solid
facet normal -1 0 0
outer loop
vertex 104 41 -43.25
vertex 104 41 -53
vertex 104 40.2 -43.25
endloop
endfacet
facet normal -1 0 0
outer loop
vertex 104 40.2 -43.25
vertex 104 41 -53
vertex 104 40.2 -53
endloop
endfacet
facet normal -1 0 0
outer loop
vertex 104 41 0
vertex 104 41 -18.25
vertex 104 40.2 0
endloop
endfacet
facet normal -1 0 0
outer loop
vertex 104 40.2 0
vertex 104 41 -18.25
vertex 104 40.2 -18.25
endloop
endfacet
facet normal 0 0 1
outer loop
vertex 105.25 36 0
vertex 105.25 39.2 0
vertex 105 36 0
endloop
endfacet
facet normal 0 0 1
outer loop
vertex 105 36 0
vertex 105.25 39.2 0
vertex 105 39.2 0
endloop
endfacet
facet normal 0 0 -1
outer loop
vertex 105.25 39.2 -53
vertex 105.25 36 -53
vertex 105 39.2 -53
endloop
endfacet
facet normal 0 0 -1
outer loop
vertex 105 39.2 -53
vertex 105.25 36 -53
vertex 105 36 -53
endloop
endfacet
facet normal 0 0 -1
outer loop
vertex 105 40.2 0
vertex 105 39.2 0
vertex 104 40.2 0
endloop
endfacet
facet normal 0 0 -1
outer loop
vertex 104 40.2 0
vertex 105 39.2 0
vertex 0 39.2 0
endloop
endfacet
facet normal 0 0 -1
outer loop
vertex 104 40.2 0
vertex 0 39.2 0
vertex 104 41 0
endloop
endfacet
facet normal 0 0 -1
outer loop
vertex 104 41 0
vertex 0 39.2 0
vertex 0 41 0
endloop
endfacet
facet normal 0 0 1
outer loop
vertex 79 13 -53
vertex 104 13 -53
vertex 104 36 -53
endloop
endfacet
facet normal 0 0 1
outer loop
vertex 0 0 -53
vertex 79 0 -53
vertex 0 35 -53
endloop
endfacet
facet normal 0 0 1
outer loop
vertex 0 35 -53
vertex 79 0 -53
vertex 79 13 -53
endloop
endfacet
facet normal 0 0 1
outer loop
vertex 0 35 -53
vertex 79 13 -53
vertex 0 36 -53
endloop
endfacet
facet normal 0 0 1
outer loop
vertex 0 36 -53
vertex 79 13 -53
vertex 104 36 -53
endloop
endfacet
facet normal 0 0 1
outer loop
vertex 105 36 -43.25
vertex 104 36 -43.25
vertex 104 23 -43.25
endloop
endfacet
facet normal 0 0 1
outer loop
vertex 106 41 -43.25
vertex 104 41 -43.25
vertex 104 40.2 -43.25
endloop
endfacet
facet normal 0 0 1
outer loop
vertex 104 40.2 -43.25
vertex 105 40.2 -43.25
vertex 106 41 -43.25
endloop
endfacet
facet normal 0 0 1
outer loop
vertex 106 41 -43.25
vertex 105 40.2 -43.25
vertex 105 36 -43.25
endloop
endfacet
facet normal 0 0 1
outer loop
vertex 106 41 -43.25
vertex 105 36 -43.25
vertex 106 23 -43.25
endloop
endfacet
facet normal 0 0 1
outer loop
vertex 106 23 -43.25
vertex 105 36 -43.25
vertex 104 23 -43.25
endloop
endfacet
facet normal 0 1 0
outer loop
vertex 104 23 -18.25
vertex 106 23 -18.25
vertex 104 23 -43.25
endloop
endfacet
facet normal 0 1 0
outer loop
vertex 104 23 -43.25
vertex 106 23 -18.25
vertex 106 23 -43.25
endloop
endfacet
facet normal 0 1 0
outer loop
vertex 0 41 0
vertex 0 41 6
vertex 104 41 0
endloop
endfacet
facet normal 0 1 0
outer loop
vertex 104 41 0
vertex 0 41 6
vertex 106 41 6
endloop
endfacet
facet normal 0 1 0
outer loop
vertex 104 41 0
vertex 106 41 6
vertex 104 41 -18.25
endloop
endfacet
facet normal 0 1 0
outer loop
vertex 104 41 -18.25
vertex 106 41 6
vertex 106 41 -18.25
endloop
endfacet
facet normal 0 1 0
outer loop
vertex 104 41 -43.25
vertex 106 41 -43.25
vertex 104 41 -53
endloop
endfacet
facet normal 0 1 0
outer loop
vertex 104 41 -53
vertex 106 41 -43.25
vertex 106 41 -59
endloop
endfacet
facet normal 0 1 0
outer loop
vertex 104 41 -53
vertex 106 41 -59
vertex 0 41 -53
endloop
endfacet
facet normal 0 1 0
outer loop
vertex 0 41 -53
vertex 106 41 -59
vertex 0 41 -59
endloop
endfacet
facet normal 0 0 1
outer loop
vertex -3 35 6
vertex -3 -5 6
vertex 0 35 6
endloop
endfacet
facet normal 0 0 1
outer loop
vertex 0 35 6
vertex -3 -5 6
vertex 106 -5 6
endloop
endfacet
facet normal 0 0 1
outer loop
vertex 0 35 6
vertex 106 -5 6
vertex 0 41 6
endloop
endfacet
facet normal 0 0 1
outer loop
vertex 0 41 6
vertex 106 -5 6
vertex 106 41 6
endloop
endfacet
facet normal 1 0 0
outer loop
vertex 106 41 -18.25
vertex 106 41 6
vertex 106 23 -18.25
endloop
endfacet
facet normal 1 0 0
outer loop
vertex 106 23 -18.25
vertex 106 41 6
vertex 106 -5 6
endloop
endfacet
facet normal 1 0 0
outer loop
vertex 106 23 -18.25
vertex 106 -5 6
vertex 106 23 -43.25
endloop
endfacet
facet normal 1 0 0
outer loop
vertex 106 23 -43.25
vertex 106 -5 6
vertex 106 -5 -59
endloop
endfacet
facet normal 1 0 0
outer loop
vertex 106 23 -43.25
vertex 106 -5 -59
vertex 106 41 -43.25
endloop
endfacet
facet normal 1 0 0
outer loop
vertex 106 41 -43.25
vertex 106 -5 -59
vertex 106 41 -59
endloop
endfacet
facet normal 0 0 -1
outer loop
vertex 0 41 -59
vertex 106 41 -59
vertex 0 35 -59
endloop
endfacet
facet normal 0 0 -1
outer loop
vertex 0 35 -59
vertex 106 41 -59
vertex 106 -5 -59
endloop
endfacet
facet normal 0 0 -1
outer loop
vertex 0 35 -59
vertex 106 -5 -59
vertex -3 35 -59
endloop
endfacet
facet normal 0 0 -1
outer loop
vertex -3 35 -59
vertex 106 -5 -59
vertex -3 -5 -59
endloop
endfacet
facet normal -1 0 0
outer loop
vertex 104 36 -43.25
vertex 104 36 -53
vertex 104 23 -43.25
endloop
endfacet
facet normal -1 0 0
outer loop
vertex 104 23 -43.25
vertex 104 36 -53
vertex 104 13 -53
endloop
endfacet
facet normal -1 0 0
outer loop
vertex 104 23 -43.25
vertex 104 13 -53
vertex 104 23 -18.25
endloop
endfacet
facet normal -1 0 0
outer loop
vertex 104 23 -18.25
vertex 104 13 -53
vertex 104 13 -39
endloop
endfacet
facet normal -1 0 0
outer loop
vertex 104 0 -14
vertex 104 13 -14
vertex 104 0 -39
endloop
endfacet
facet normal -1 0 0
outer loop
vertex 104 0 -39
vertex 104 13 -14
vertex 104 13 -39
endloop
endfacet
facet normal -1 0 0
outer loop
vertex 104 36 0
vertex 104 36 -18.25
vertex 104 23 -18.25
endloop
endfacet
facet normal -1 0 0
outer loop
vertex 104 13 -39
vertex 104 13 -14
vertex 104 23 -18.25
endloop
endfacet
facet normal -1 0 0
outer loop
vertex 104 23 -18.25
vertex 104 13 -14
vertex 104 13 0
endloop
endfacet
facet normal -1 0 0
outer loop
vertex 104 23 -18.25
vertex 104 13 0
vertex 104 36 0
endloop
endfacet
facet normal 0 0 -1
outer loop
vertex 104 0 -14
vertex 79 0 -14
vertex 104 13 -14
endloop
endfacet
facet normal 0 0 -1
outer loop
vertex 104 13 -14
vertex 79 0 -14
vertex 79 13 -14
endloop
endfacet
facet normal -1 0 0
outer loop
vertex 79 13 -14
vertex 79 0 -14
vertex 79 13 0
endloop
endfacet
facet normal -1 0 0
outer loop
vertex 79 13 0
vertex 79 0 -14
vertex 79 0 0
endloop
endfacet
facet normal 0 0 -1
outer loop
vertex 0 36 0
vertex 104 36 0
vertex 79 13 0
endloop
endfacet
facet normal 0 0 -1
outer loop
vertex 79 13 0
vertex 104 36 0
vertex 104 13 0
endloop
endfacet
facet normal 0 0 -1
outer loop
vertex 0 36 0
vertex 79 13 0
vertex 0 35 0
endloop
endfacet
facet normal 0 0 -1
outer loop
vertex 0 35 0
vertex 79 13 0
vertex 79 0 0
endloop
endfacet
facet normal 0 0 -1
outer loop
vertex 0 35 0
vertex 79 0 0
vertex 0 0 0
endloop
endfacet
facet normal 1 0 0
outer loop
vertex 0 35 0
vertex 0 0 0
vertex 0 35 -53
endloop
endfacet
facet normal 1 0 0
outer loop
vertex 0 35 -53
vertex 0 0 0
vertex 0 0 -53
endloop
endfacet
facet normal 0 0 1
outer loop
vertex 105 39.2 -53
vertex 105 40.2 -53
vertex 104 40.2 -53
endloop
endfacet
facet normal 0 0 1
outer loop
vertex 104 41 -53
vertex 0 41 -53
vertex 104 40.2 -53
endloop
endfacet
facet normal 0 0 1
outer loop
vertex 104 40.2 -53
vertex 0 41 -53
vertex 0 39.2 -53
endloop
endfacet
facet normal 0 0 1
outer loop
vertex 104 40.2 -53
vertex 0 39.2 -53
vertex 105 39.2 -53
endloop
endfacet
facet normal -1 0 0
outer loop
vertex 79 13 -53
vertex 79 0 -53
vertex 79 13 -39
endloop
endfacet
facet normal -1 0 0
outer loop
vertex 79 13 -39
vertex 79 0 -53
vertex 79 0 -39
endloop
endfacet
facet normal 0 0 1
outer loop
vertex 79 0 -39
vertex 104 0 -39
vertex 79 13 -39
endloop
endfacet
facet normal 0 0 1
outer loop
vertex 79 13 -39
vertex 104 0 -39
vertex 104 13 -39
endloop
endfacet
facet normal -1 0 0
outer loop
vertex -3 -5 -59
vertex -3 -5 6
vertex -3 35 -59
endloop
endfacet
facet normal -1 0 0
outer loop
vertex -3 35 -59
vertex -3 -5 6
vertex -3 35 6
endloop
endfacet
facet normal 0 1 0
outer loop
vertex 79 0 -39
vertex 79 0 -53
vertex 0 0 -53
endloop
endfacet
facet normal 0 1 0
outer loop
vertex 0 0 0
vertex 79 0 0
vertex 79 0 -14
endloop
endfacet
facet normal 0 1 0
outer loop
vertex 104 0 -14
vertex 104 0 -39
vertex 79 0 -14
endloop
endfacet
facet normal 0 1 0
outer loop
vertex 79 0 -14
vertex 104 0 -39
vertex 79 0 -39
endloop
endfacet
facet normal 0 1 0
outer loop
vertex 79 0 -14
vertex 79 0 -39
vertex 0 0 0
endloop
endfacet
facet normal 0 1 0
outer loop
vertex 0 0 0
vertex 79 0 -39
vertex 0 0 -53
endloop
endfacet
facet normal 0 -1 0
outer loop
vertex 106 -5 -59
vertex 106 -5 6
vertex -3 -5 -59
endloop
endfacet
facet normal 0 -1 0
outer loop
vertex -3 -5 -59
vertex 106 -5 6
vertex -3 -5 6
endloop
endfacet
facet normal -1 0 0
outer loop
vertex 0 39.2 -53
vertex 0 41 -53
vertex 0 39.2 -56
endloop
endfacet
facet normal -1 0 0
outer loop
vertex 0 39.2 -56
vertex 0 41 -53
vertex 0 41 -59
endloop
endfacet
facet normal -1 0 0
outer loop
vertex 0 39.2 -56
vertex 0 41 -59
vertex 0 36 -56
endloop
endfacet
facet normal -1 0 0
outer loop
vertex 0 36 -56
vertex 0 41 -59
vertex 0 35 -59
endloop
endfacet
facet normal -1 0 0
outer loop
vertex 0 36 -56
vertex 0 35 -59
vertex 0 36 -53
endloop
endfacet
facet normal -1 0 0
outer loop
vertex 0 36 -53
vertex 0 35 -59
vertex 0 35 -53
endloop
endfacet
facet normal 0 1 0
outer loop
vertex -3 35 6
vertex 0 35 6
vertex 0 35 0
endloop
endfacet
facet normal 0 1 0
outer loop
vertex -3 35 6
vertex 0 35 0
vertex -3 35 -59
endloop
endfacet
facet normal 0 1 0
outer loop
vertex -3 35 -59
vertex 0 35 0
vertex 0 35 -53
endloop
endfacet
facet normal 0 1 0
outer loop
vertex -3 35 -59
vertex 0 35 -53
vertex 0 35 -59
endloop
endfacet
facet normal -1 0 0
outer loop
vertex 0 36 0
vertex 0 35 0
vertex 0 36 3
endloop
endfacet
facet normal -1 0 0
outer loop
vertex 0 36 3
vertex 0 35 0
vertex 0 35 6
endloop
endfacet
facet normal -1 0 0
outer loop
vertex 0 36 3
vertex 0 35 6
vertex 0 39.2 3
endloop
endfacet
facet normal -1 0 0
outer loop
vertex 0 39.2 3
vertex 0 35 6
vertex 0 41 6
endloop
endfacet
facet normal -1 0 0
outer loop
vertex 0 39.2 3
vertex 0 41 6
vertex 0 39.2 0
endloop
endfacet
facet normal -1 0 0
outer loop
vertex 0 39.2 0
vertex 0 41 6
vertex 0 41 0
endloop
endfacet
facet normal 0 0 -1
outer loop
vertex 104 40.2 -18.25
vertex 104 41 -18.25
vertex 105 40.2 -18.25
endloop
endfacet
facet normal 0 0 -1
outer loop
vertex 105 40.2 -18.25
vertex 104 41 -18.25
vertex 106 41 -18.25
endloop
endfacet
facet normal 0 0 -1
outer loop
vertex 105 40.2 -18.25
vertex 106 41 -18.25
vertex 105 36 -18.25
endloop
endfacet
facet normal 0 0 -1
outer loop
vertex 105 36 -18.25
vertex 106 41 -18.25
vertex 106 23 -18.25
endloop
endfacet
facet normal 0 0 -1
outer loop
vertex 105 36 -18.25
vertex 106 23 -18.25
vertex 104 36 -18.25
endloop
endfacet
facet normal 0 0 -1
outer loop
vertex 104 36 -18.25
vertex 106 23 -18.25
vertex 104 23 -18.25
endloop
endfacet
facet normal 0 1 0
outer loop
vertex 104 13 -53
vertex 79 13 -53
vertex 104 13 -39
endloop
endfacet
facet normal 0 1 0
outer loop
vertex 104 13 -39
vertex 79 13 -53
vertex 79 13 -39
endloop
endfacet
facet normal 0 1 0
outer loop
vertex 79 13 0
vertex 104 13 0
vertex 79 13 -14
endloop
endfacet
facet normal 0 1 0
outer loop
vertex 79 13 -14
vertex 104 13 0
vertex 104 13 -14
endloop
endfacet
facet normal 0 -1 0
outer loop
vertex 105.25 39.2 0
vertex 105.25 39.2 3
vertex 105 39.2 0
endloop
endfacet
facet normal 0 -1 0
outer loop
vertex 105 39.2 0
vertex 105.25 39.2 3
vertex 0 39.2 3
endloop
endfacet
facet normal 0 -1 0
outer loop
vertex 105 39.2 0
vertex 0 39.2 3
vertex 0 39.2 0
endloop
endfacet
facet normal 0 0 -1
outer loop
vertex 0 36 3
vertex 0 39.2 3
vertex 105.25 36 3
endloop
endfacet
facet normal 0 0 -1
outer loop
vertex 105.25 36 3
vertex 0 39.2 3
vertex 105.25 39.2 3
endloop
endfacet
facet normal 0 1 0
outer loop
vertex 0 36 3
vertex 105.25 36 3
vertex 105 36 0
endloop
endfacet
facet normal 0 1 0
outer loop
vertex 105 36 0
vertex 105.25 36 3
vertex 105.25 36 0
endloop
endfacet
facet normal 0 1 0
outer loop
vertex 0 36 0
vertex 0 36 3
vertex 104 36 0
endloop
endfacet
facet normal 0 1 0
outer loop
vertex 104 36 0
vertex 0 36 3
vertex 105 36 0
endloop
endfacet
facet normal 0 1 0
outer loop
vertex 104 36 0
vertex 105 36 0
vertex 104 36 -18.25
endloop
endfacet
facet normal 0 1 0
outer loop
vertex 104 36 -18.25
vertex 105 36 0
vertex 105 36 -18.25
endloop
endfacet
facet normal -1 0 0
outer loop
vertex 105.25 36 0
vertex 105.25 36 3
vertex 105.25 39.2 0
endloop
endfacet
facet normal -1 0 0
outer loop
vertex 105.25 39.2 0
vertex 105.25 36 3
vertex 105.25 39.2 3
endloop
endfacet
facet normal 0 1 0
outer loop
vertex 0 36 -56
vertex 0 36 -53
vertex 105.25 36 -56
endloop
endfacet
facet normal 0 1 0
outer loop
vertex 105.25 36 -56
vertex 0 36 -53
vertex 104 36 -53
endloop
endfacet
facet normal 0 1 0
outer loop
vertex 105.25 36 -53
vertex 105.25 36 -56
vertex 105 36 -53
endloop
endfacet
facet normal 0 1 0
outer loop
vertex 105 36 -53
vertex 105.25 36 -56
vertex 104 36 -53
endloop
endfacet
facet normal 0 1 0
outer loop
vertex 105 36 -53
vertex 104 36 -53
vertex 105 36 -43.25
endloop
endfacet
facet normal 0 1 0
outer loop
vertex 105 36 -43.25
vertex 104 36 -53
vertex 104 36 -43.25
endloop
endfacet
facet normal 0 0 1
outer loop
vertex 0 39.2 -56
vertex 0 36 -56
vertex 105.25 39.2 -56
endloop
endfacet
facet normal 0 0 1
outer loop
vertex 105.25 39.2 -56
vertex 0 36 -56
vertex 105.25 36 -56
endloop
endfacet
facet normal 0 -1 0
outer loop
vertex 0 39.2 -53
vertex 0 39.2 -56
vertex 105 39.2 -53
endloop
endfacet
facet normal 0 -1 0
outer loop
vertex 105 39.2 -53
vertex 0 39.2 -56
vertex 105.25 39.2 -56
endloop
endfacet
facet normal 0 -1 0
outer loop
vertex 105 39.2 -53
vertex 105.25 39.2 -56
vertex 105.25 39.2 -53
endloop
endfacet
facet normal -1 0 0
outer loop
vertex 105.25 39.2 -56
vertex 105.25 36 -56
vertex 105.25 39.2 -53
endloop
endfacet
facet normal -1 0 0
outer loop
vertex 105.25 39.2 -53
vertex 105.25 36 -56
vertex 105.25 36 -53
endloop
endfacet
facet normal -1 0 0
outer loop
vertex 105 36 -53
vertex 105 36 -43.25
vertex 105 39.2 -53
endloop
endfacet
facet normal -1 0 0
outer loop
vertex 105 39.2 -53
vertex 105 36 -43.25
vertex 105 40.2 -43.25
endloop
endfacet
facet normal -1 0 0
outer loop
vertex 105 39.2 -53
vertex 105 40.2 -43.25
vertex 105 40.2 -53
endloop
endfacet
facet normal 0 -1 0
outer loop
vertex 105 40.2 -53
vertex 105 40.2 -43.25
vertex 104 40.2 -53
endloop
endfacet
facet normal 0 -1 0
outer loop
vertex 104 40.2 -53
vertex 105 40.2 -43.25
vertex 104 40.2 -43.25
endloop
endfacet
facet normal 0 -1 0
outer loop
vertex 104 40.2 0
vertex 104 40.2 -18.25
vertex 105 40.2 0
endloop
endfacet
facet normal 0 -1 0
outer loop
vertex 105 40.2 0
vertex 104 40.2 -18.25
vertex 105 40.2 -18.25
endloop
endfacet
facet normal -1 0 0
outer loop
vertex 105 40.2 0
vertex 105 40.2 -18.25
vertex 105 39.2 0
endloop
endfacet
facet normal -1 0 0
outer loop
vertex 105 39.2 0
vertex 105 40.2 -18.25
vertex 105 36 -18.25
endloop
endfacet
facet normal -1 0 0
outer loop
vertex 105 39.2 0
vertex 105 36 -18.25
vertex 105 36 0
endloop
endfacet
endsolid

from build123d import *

# Parameters (mm, degrees)
SKETCH2_W           = 109
SKETCH2_H           = 65
SKETCH2_W_2         = 104
SKETCH2_H_2         = 53
SKETCH2_W_3         = 25
SKETCH2_H_3         = 14
BOSS_EXTRUDE1_DEPTH = 41
SKETCH3_W           = 109
SKETCH3_H           = 65
BOSS_EXTRUDE2_DEPTH = 5
SKETCH4_W           = 65
SKETCH4_H           = 6
CUT_EXTRUDE1_DEPTH  = 3
SKETCH5_W           = 25
SKETCH5_H           = 18
CUT_EXTRUDE2_DEPTH  = 10
SKETCH6_W           = 53
SKETCH6_H           = 28
CUT_EXTRUDE3_DEPTH  = 25
SKETCH7_W           = 3
SKETCH7_H           = 3.2
CUT_EXTRUDE4_DEPTH  = 105.25
SKETCH8_W           = 53
SKETCH8_H           = 4.2
CUT_EXTRUDE5_DEPTH  = 1


with BuildPart() as part:
    # Sketch2 → Boss-Extrude1 (new body)
    # profile 1 of 3: a face of its own
    with BuildSketch(Plane(origin=(0, 0, 0), x_dir=(1, 0, 0), z_dir=(0, 1, 0))):
        with Locations((51.5, 26.5)):
            Rectangle(SKETCH2_W, SKETCH2_H)
        with Locations((52, 26.5)):
            Rectangle(SKETCH2_W_2, SKETCH2_H_2, mode=Mode.SUBTRACT)
    # profile 2 of 3: a face of its own
    with BuildSketch(Plane(origin=(0, 0, 0), x_dir=(1, 0, 0), z_dir=(0, 1, 0))):
        with Locations((91.5, 46)):
            Rectangle(SKETCH2_W_3, SKETCH2_H_3)
    # profile 3 of 3: a face of its own
    with BuildSketch(Plane(origin=(0, 0, 0), x_dir=(1, 0, 0), z_dir=(0, 1, 0))):
        with Locations((91.5, 7)):
            Rectangle(SKETCH2_W_3, SKETCH2_H_3)
    extrude(amount=BOSS_EXTRUDE1_DEPTH)

    # Sketch3 → Boss-Extrude2 (add)
    with BuildSketch(Plane.XZ):
        with Locations((51.5, -26.5)):
            Rectangle(SKETCH3_W, SKETCH3_H)
    extrude(amount=BOSS_EXTRUDE2_DEPTH)

    # Sketch4 → Cut-Extrude1 (cut)
    with BuildSketch(Plane.ZY.offset(3)):
        with Locations((-26.5, 38)):
            Rectangle(SKETCH4_W, SKETCH4_H)
    extrude(amount=-CUT_EXTRUDE1_DEPTH, mode=Mode.SUBTRACT)

    # Sketch5 → Cut-Extrude2 (cut)
    with BuildSketch(Plane(origin=(106, 0, 0), x_dir=(0, 0, -1), z_dir=(1, 0, 0))):
        with Locations((30.75, 32)):
            Rectangle(SKETCH5_W, SKETCH5_H)
    extrude(amount=-CUT_EXTRUDE2_DEPTH, mode=Mode.SUBTRACT)

    # Sketch6 → Cut-Extrude3 (cut)
    with BuildSketch(Plane.ZY.offset(-79)):
        with Locations((-26.5, 27)):
            Rectangle(SKETCH6_W, SKETCH6_H)
    extrude(amount=-CUT_EXTRUDE3_DEPTH, mode=Mode.SUBTRACT)

    # Sketch7 → Cut-Extrude4 (cut)
    with BuildSketch(Plane.ZY):
        with Locations((-54.5, 37.6)):
            Rectangle(SKETCH7_W, SKETCH7_H)
        with Locations((1.5, 37.6)):
            Rectangle(SKETCH7_W, SKETCH7_H)
    extrude(amount=-CUT_EXTRUDE4_DEPTH, mode=Mode.SUBTRACT)

    # Sketch8 → Cut-Extrude5 (cut)
    with BuildSketch(Plane.ZY.offset(-104)):
        with Locations((-26.5, 38.1)):
            Rectangle(SKETCH8_W, SKETCH8_H)
    extrude(amount=-CUT_EXTRUDE5_DEPTH, mode=Mode.SUBTRACT)


solid = part.part
